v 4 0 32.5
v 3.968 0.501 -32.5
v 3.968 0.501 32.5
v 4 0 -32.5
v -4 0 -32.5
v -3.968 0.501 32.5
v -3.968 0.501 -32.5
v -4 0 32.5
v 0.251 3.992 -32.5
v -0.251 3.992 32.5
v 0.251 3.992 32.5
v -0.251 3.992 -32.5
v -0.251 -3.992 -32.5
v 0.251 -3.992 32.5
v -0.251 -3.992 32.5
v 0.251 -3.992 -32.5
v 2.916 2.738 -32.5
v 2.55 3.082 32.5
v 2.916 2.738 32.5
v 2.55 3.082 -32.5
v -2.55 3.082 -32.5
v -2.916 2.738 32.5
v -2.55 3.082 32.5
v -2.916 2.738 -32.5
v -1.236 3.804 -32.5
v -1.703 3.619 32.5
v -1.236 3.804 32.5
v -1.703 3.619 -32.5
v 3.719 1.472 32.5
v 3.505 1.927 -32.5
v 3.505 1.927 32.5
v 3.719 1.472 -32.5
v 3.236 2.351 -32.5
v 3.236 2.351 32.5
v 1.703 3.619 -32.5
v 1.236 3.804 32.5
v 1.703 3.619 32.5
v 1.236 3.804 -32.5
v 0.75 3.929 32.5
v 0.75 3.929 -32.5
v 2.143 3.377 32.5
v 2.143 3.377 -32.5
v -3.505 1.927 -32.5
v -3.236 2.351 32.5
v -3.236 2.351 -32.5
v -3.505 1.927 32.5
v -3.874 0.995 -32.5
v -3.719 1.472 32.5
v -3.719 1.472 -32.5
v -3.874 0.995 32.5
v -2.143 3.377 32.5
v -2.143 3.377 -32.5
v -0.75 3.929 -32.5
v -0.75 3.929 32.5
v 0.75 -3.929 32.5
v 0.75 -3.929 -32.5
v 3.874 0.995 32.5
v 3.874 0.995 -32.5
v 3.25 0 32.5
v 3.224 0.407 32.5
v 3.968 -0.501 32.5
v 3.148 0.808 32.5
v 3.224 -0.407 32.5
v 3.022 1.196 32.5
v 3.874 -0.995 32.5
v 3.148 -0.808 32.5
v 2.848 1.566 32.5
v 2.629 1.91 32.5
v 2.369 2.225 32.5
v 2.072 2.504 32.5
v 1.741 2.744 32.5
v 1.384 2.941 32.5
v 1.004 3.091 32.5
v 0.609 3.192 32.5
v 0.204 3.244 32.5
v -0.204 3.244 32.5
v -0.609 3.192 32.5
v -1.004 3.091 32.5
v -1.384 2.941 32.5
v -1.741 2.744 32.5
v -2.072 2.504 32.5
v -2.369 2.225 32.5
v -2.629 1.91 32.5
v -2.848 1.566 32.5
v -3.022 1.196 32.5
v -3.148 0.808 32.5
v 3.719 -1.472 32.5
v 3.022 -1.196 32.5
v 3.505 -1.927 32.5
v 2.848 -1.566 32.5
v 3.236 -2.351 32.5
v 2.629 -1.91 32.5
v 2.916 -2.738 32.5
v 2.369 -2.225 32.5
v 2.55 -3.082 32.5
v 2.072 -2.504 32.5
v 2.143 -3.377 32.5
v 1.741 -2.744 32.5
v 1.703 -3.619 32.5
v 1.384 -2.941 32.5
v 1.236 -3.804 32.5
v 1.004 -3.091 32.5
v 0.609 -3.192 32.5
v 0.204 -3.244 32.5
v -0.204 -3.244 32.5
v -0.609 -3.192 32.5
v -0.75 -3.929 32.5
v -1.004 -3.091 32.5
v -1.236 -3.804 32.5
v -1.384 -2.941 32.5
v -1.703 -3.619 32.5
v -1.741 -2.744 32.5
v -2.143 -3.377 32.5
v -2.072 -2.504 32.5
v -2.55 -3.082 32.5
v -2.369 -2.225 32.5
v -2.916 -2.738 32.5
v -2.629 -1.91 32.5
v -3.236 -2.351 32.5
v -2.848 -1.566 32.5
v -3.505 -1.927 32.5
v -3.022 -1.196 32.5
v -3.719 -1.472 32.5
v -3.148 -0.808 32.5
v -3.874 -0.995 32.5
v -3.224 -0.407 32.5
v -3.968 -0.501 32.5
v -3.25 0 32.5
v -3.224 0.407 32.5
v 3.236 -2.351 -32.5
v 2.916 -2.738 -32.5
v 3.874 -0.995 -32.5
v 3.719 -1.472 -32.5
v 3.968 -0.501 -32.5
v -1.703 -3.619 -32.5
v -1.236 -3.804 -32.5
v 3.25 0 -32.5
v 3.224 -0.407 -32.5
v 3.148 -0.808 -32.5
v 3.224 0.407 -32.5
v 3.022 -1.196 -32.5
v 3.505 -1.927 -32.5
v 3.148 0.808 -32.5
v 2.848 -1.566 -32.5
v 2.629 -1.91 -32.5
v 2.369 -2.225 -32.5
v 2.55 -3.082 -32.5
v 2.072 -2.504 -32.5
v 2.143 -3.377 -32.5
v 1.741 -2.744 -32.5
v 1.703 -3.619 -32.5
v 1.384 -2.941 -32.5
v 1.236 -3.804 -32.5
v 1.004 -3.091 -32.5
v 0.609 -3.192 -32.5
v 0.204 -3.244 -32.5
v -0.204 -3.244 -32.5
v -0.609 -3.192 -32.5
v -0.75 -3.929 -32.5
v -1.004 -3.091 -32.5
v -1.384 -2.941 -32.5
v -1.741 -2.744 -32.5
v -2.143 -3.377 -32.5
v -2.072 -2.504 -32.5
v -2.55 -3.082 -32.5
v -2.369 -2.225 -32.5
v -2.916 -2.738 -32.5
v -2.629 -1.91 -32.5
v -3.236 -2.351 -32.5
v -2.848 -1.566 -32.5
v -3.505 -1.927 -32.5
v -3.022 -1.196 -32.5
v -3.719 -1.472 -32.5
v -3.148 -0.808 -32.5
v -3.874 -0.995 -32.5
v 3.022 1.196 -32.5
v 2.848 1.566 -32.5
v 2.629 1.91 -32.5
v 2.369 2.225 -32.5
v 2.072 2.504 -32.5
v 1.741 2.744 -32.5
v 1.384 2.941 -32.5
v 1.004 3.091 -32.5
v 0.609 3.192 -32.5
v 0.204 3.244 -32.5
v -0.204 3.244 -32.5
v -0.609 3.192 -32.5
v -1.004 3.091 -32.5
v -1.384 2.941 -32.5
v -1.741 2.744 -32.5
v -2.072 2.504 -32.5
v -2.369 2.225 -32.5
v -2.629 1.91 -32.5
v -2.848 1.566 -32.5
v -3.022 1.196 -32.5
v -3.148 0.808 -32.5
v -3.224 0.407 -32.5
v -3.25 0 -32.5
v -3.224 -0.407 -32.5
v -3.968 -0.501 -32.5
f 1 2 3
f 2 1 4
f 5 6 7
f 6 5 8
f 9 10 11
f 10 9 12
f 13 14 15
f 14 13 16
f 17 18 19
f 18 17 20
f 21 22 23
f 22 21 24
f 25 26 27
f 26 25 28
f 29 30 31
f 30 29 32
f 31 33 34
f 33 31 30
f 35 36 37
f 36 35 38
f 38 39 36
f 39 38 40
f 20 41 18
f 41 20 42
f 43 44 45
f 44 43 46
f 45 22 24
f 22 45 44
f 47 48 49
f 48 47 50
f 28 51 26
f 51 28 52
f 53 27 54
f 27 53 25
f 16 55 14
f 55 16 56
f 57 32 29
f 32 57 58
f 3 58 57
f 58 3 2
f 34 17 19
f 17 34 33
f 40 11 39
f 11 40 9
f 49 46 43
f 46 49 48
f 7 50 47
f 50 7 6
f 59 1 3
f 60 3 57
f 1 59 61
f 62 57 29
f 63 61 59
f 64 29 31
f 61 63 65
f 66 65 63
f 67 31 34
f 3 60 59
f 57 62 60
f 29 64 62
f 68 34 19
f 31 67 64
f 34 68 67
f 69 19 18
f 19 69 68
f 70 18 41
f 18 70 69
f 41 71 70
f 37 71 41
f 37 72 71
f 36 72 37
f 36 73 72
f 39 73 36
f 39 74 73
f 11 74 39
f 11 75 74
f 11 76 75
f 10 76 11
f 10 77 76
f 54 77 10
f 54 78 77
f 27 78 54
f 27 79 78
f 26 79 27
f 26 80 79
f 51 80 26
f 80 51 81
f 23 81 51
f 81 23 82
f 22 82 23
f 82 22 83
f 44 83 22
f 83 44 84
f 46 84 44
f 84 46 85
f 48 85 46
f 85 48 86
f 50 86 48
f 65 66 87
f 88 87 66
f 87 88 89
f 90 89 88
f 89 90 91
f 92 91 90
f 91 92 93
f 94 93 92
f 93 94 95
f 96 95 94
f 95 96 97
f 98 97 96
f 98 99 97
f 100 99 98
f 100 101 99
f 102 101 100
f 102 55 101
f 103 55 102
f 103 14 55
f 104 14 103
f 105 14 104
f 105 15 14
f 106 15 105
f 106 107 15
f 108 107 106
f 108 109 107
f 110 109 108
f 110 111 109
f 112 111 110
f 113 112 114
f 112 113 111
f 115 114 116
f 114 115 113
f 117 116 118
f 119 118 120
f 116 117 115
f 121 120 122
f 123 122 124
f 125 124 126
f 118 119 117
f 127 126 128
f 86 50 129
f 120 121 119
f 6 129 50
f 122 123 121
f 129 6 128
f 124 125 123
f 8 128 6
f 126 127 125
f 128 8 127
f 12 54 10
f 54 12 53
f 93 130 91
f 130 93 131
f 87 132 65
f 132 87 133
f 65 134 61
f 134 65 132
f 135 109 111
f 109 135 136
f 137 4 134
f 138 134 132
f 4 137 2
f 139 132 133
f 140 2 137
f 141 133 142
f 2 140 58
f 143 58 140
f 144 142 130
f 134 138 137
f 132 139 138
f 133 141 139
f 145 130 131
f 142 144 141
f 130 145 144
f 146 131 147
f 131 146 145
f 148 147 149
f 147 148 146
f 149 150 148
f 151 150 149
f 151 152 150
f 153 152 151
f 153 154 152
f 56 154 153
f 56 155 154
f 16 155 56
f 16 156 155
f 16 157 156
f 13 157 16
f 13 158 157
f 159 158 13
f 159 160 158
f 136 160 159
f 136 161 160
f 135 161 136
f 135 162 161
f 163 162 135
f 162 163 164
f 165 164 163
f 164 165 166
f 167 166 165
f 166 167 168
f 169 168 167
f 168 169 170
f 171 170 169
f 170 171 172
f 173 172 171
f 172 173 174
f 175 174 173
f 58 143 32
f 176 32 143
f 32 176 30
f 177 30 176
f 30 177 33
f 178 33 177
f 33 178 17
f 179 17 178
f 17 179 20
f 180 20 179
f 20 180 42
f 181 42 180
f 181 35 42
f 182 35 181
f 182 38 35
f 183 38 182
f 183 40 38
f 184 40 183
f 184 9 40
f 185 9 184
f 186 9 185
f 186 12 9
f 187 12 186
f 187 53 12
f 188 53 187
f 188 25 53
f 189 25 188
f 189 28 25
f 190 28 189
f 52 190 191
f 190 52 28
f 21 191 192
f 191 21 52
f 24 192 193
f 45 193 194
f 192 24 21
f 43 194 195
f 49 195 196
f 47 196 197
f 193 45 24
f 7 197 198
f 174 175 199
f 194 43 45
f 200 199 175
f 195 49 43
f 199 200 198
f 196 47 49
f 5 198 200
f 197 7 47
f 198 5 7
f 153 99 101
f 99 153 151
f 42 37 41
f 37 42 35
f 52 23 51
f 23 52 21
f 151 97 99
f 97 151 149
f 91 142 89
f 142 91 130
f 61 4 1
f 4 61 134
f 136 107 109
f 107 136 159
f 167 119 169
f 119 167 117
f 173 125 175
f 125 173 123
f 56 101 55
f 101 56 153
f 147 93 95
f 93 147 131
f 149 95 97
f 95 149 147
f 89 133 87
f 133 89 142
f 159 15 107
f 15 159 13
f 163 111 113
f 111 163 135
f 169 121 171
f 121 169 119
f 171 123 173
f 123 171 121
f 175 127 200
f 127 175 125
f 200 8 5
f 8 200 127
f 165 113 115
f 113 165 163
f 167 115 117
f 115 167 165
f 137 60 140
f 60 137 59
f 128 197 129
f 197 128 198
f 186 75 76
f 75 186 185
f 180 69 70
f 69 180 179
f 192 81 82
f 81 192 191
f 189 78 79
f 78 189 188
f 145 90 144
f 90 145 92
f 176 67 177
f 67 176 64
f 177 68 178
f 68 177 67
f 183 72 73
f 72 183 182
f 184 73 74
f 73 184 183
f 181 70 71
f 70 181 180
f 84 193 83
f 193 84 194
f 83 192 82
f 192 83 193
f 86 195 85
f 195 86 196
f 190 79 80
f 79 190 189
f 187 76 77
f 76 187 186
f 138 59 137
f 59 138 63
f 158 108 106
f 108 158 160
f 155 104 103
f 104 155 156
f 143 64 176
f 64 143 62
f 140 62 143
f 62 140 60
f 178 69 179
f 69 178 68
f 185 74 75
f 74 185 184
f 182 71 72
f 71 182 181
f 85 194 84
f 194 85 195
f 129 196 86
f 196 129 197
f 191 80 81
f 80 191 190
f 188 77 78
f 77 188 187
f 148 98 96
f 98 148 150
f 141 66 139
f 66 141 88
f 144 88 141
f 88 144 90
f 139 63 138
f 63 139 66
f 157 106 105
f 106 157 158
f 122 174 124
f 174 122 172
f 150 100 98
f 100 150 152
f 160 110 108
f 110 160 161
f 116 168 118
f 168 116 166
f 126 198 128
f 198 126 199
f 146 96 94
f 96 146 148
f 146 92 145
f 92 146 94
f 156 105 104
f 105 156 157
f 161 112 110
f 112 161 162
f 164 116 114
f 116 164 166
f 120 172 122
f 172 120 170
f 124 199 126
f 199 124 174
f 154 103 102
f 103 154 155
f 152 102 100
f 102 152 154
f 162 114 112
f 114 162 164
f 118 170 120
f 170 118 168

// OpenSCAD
$fn = 50;


difference() {
	union() {
		translate(v = [0, 0, -32.5000000000]) {
			cylinder(h = 65, r = 4.0000000000);
		}
	}
	union() {
		translate(v = [0, 0, -100.0000000000]) {
			cylinder(h = 200, r = 3.2500000000);
		}
	}
}
